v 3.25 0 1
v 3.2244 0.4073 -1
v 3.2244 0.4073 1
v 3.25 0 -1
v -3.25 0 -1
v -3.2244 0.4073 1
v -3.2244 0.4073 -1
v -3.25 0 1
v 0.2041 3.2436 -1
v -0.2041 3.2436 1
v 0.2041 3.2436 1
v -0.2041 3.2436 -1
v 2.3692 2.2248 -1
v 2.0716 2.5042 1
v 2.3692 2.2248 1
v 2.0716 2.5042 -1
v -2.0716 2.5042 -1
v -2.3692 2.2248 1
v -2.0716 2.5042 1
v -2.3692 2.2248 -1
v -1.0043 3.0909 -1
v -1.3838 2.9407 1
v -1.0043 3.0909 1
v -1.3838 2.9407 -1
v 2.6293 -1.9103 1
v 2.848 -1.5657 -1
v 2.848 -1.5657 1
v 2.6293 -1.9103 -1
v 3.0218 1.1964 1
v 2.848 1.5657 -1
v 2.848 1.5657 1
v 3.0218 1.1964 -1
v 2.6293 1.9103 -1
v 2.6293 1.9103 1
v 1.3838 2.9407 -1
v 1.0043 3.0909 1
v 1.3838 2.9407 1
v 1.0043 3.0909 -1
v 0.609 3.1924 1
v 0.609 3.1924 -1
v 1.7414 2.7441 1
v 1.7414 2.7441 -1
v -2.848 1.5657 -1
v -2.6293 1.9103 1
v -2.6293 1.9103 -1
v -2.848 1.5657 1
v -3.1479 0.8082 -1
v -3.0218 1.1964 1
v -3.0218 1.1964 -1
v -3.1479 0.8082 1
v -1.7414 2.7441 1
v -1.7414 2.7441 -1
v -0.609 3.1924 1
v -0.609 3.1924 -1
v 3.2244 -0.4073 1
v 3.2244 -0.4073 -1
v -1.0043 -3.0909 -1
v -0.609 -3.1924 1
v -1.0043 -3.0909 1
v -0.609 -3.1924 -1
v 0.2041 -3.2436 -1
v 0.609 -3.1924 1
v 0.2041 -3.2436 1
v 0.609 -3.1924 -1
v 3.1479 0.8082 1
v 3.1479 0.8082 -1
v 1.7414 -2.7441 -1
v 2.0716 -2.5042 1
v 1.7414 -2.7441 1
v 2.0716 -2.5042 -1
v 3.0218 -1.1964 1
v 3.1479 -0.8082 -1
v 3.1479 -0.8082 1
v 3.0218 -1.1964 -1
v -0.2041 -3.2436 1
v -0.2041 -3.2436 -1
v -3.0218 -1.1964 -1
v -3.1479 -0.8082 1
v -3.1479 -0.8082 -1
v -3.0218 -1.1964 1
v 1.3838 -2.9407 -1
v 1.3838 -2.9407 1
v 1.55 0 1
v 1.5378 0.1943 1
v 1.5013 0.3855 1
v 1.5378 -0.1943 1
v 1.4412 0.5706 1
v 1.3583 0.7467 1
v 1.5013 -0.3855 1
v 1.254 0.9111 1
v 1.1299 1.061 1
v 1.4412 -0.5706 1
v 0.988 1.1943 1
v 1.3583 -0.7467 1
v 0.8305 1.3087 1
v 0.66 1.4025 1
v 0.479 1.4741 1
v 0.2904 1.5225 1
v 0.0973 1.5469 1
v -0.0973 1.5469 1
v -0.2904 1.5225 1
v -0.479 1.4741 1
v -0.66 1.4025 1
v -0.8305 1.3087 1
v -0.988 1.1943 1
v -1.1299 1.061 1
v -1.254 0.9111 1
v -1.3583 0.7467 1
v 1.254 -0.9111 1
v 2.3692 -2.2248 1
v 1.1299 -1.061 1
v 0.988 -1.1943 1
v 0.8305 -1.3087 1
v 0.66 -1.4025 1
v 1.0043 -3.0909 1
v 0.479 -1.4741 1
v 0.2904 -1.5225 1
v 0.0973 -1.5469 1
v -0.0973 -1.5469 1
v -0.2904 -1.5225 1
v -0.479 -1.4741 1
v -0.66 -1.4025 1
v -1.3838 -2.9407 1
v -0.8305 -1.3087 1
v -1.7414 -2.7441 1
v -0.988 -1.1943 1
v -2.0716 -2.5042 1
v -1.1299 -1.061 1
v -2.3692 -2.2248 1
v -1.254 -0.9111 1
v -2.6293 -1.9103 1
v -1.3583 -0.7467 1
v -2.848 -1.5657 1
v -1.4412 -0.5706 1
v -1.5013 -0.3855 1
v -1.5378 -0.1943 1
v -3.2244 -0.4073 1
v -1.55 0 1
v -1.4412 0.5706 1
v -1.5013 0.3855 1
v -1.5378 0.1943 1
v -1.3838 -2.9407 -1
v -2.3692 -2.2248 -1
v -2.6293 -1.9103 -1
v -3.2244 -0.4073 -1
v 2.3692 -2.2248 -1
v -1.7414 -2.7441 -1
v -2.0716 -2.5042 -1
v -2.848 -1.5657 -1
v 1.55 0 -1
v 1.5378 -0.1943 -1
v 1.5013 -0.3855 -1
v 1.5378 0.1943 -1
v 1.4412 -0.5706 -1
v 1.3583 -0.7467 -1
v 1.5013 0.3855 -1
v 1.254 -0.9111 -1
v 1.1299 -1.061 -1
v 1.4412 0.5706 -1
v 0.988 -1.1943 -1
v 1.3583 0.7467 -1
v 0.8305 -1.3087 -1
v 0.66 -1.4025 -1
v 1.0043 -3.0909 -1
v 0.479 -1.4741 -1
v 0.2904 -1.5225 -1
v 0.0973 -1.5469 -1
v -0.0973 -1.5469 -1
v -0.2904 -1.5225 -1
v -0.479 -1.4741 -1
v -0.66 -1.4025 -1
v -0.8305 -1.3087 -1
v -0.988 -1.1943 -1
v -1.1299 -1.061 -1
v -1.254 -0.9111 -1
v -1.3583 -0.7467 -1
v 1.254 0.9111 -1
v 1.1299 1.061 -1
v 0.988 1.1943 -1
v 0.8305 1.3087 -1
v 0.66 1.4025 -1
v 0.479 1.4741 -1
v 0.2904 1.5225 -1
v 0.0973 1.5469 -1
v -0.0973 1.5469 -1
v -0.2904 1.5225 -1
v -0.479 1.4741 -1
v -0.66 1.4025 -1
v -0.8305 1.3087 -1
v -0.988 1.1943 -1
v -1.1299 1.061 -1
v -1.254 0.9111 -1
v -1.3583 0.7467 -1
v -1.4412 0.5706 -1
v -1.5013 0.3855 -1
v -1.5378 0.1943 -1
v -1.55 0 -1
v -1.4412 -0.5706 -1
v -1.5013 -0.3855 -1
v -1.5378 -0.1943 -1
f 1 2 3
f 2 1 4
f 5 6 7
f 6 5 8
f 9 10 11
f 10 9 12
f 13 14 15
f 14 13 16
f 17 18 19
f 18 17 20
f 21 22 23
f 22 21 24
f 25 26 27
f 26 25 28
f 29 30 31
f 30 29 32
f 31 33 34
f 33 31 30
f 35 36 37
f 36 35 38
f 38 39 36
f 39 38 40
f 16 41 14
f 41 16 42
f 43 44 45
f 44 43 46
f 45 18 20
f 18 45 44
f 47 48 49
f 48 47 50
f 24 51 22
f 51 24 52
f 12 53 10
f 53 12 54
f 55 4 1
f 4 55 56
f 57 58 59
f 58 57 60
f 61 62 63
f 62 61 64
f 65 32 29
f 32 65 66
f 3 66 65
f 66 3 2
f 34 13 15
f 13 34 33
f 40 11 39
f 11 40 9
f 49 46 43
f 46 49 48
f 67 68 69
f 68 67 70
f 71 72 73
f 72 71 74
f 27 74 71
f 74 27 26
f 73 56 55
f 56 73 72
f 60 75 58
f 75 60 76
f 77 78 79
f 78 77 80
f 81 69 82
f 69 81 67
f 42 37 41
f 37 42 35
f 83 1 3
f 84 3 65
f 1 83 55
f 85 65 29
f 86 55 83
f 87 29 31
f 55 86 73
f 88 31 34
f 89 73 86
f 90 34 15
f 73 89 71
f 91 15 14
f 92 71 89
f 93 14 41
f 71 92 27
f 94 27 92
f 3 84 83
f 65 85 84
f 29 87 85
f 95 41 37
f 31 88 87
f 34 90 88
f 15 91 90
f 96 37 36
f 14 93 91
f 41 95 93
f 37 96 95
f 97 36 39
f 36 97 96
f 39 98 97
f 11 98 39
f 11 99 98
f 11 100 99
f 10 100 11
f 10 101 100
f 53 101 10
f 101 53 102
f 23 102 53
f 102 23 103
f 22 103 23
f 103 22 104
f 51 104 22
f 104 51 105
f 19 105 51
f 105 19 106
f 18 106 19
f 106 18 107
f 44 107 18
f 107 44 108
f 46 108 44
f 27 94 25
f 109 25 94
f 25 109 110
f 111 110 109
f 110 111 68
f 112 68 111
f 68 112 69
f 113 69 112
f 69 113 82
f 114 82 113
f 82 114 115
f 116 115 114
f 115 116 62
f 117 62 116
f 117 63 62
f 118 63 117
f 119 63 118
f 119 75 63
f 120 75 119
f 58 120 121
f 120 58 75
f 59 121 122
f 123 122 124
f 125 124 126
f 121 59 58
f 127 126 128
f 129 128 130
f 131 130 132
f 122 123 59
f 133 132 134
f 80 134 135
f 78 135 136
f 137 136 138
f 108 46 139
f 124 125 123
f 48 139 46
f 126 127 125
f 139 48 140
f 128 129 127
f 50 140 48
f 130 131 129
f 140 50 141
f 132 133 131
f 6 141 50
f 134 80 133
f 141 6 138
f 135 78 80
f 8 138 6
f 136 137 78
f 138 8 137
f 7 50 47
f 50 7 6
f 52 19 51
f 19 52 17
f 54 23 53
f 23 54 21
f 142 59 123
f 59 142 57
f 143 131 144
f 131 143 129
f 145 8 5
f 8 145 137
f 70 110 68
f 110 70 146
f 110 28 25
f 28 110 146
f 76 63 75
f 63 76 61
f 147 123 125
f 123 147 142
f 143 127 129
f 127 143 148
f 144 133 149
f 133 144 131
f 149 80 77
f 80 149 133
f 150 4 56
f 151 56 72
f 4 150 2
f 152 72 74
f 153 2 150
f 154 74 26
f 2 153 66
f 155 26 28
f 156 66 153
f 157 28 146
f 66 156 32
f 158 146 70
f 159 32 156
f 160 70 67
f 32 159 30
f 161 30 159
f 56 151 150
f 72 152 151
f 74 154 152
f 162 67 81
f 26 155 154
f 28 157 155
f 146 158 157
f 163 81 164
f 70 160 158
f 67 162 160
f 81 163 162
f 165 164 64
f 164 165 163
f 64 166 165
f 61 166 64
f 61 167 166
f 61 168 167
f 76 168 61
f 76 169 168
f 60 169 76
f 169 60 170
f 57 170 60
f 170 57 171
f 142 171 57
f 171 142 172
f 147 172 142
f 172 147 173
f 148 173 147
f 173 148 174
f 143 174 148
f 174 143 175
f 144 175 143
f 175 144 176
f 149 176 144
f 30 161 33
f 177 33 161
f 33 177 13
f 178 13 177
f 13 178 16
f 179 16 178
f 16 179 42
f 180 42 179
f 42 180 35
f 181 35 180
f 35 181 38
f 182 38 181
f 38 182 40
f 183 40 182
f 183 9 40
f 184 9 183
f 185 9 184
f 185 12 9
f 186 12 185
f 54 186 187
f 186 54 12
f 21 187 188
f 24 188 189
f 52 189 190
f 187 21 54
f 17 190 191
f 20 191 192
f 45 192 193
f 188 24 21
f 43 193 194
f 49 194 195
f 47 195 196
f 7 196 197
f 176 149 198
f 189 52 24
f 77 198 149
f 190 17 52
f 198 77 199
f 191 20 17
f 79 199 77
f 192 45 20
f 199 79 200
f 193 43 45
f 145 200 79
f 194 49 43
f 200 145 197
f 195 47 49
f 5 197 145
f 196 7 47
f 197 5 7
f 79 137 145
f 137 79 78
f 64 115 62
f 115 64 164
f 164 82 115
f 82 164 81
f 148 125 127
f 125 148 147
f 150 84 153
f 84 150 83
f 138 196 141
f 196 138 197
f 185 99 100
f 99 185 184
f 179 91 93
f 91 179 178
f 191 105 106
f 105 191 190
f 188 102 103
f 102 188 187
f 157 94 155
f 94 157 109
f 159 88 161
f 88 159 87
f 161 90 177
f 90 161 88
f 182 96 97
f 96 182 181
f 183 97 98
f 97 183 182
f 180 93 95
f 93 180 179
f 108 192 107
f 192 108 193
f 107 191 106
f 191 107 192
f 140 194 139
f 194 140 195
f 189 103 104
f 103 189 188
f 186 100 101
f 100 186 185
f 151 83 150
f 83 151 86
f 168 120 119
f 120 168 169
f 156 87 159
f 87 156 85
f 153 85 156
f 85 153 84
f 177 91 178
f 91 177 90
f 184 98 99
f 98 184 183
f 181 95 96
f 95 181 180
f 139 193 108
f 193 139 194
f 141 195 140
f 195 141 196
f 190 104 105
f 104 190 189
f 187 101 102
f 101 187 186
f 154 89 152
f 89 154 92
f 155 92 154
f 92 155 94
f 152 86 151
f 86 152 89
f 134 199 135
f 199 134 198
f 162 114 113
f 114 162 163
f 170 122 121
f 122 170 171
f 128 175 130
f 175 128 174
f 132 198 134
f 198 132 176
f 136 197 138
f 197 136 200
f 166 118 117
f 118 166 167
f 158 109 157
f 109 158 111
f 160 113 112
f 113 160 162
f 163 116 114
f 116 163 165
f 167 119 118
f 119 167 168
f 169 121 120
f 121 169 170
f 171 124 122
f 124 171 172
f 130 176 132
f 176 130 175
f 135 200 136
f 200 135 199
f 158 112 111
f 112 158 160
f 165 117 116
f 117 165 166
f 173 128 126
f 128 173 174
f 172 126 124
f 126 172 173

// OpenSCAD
$fn = 50;


difference() {
	union() {
		translate(v = [0, 0, -1.0000000000]) {
			cylinder(h = 2, r = 3.2500000000);
		}
	}
	union() {
		translate(v = [0, 0, -100.0000000000]) {
			cylinder(h = 200, r = 1.5500000000);
		}
	}
}
